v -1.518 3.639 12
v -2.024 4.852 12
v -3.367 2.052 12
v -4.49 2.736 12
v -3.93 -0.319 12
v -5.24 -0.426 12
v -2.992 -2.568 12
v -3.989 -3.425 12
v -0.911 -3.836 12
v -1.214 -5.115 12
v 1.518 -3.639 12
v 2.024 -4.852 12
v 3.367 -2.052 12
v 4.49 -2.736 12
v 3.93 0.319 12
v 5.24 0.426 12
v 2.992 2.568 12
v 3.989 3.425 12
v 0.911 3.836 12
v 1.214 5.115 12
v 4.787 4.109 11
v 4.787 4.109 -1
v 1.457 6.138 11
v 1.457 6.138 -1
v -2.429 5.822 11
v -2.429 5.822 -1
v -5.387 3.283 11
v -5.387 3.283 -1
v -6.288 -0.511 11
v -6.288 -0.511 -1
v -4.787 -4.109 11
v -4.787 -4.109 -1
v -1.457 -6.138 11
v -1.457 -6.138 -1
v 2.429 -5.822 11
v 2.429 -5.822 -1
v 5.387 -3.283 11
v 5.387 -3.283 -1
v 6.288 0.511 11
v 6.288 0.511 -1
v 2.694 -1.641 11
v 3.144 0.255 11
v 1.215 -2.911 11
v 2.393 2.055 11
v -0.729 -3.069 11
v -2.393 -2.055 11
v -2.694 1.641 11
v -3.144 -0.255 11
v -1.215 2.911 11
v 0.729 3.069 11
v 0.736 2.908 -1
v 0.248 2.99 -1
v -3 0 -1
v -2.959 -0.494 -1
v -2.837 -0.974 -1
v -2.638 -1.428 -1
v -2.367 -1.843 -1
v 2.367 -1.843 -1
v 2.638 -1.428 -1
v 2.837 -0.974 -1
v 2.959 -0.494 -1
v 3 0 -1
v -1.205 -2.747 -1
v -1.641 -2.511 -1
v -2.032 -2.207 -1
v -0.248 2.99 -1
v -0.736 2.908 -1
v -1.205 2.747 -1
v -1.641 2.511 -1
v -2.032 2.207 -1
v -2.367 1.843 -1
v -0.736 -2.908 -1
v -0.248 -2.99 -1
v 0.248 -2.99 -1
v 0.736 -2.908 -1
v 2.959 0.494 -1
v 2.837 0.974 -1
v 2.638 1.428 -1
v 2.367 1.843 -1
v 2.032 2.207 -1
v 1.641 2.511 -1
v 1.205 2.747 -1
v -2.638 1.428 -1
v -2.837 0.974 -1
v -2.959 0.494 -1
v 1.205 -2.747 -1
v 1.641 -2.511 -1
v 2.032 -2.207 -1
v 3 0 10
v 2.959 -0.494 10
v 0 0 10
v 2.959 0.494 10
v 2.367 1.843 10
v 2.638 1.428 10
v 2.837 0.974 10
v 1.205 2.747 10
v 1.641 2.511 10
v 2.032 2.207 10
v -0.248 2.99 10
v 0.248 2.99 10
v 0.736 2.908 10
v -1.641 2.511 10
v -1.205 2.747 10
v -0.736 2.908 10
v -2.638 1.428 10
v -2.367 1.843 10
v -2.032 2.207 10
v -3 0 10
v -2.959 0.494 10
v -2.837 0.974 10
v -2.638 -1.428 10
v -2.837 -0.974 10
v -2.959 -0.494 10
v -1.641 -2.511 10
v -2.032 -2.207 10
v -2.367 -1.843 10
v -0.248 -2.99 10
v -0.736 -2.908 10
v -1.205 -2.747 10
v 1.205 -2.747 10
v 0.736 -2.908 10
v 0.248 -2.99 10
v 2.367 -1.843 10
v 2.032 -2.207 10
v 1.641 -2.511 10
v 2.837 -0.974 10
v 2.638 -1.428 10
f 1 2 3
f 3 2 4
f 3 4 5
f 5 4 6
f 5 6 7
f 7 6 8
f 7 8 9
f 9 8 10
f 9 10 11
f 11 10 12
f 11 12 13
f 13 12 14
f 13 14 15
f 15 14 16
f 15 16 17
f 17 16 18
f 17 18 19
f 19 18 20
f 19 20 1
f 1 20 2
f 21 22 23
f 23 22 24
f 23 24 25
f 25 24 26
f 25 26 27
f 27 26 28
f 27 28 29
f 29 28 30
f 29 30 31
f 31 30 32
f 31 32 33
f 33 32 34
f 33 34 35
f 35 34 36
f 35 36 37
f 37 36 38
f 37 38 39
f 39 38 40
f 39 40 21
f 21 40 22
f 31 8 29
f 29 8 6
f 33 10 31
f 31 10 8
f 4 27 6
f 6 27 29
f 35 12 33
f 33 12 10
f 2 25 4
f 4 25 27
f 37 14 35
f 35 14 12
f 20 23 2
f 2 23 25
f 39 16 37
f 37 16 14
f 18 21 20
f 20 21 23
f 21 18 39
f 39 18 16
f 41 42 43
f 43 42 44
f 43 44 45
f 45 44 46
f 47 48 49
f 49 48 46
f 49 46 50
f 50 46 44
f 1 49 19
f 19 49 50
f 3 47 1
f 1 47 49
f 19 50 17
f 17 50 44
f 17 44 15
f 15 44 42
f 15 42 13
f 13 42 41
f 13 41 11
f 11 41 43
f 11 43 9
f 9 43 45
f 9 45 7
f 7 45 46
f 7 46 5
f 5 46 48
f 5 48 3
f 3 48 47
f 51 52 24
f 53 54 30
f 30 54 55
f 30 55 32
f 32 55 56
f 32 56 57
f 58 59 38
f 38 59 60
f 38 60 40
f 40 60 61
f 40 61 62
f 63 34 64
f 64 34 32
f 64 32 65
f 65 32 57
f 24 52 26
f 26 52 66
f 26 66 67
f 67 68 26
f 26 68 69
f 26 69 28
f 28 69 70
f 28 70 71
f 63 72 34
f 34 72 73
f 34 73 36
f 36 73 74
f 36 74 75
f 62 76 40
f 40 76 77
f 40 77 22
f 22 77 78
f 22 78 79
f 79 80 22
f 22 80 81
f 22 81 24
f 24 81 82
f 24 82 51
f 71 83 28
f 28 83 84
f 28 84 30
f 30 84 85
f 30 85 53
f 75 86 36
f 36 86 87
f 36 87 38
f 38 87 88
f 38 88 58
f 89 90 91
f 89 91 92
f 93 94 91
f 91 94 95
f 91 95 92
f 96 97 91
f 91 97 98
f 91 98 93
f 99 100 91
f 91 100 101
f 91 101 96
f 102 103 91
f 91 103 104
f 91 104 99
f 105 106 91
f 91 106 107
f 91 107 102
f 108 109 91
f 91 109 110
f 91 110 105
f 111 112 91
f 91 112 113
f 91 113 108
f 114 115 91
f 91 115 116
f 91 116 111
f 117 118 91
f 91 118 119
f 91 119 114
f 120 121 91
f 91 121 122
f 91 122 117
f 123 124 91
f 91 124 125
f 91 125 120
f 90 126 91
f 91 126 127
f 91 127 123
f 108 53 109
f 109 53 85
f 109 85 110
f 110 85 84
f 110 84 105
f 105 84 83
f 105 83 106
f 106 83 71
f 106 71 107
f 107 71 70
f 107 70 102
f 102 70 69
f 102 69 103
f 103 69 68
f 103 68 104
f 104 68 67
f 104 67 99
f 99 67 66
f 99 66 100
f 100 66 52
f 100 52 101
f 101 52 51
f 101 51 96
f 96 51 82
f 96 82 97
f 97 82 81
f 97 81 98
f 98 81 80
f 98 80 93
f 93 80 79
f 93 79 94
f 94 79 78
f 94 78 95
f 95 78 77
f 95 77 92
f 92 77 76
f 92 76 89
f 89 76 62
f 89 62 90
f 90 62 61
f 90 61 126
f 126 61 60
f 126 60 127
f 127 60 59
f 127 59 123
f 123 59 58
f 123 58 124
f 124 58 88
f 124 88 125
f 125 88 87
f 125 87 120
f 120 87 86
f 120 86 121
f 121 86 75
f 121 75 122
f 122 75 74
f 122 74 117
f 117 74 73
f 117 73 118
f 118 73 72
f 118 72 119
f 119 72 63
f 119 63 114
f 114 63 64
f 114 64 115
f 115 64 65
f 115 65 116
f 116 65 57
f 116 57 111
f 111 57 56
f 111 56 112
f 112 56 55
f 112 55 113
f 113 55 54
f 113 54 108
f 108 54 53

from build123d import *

# Parameters (mm, degrees)
SKETCH_1_R          = 3.05
EXTRUDE_1_DEPTH     = 12
SKETCH_2_R          = 3.098235282
EXTRUDE_2_DEPTH     = 2
EXTRUDE_3_DEPTH     = 7
CHAMFER_1_SIZE      = 1
SKETCH_6_R          = 3.05
CUT_EXTRUDE_2_DEPTH = 7
SKETCH_7_R          = 3.05
SKETCH_7_R_2        = 3
EXTRUDE_4_DEPTH     = 10
SKETCH_8_R          = 3
EXTRUDE_5_DEPTH     = 1


with BuildPart() as part:
    # 草图1 → 凸台-拉伸1 (new body)
    with BuildSketch(Plane.XY):
        Polygon((1.45714262, 6.138188374), (-2.429083459, 5.822385651), (-5.387482218, 3.282629506), (-6.288045884, -0.510979538), (-4.786789744, -4.109411766), (-1.45714262, -6.138188374), (2.429083459, -5.822385651), (5.387482218, -3.282629506), (6.288045884, 0.510979538), (4.786789744, 4.109411766), align=None)
        Circle(SKETCH_1_R, mode=Mode.SUBTRACT)
    extrude(amount=EXTRUDE_1_DEPTH)

    # 草图2 → 凸台-拉伸2 (add)
    with BuildSketch(Plane.XY.offset(12)):
        Circle(SKETCH_2_R)
    extrude(amount=-EXTRUDE_2_DEPTH)

    # 草图3 → 凸台-拉伸3 (add)
    with BuildSketch(Plane(origin=(0, 0, 10), x_dir=(-1, 0, 0), z_dir=(0, 0, -1))):
        with BuildLine():
            Line((1.45, 2.683281573), (1.45, -2.683281573))
            ThreePointArc((1.45, -2.683281573), (3.05, 0), (1.45, 2.683281573))
        make_face()
    extrude(amount=EXTRUDE_3_DEPTH)

    # 倒角1
    chamfer_1_edges = [part.edges().sort_by_distance(p)[0] for p in [
        (-3.908282839, 4.552507579, 12),
        (-5.837764051, 1.385824984, 12),
        (-5.537417814, -2.310195652, 12),
        (-3.121966182, -5.12380007, 12),
        (0.48597042, -5.980287012, 12),
        (3.908282839, -4.552507579, 12),
        (5.837764051, -1.385824984, 12),
        (5.537417814, 2.310195652, 12),
        (3.121966182, 5.12380007, 12),
        (-0.48597042, 5.980287012, 12),
    ]]
    chamfer(chamfer_1_edges, length=CHAMFER_1_SIZE)

    # 草图5 → 切除-放样1 section 0
    with BuildSketch(Plane.XY.offset(12)):
        Polygon((0.910714137, 3.836367733), (-1.518177162, 3.638991032), (-3.367176386, 2.051643441), (-3.930028677, -0.319362211), (-2.99174359, -2.568382354), (-0.910714137, -3.836367733), (1.518177162, -3.638991032), (3.367176386, -2.051643441), (3.930028677, 0.319362211), (2.99174359, 2.568382354), align=None)
    # 草图4 → 切除-放样1 section 1
    with BuildSketch(Plane.XY.offset(11)):
        Polygon((0.72857131, 3.069094187), (-1.21454173, 2.911192826), (-2.693741109, 1.641314753), (-3.144022942, -0.255489769), (-2.393394872, -2.054705883), (-0.72857131, -3.069094187), (1.21454173, -2.911192826), (2.693741109, -1.641314753), (3.144022942, 0.255489769), (2.393394872, 2.054705883), align=None)
    loft(mode=Mode.SUBTRACT)

    # 草图6 → 切除-拉伸2 (cut)
    with BuildSketch(Plane(origin=(0, 0, 3), x_dir=(-1, 0, 0), z_dir=(0, 0, -1))):
        Circle(SKETCH_6_R)
    extrude(amount=-CUT_EXTRUDE_2_DEPTH, mode=Mode.SUBTRACT)

    # 草图7 → 凸台-拉伸4 (add)
    with BuildSketch(Plane(origin=(0, 0, 0), x_dir=(-1, 0, 0), z_dir=(0, 0, -1))):
        Circle(SKETCH_7_R)
        Circle(SKETCH_7_R_2, mode=Mode.SUBTRACT)
    extrude(amount=-EXTRUDE_4_DEPTH)

    # 草图8 → 凸台-拉伸5 (add)
    with BuildSketch(Plane(origin=(0, 0, 0), x_dir=(-1, 0, 0), z_dir=(0, 0, -1))):
        Polygon((2.429083459, 5.822385651), (-1.45714262, 6.138188374), (-4.786789744, 4.109411766), (-6.288045884, 0.510979538), (-5.387482218, -3.282629506), (-2.429083459, -5.822385651), (1.45714262, -6.138188374), (4.786789744, -4.109411766), (6.288045884, -0.510979538), (5.387482218, 3.282629506), align=None)
        Circle(SKETCH_8_R, mode=Mode.SUBTRACT)
    extrude(amount=EXTRUDE_5_DEPTH)


solid = part.part
